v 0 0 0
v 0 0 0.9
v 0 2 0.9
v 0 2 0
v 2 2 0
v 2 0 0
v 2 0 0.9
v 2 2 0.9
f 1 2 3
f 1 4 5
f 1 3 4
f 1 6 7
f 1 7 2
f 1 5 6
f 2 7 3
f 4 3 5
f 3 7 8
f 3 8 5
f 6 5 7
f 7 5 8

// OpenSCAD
/* Warning, this is a very basic generator with a lot of approximation 
input data : [VDFN, J8A, 2x2x0.9mm, 8, , A, C04-01207A]
generated by com.zoubworld.electronics.cad.model3d.Basic
Date : Sun Feb 15 10:50:49 CET 2026
*/

//body
color("black")
translate([0,0,0])
cube([2.0,2.0,0.9], center=false);
